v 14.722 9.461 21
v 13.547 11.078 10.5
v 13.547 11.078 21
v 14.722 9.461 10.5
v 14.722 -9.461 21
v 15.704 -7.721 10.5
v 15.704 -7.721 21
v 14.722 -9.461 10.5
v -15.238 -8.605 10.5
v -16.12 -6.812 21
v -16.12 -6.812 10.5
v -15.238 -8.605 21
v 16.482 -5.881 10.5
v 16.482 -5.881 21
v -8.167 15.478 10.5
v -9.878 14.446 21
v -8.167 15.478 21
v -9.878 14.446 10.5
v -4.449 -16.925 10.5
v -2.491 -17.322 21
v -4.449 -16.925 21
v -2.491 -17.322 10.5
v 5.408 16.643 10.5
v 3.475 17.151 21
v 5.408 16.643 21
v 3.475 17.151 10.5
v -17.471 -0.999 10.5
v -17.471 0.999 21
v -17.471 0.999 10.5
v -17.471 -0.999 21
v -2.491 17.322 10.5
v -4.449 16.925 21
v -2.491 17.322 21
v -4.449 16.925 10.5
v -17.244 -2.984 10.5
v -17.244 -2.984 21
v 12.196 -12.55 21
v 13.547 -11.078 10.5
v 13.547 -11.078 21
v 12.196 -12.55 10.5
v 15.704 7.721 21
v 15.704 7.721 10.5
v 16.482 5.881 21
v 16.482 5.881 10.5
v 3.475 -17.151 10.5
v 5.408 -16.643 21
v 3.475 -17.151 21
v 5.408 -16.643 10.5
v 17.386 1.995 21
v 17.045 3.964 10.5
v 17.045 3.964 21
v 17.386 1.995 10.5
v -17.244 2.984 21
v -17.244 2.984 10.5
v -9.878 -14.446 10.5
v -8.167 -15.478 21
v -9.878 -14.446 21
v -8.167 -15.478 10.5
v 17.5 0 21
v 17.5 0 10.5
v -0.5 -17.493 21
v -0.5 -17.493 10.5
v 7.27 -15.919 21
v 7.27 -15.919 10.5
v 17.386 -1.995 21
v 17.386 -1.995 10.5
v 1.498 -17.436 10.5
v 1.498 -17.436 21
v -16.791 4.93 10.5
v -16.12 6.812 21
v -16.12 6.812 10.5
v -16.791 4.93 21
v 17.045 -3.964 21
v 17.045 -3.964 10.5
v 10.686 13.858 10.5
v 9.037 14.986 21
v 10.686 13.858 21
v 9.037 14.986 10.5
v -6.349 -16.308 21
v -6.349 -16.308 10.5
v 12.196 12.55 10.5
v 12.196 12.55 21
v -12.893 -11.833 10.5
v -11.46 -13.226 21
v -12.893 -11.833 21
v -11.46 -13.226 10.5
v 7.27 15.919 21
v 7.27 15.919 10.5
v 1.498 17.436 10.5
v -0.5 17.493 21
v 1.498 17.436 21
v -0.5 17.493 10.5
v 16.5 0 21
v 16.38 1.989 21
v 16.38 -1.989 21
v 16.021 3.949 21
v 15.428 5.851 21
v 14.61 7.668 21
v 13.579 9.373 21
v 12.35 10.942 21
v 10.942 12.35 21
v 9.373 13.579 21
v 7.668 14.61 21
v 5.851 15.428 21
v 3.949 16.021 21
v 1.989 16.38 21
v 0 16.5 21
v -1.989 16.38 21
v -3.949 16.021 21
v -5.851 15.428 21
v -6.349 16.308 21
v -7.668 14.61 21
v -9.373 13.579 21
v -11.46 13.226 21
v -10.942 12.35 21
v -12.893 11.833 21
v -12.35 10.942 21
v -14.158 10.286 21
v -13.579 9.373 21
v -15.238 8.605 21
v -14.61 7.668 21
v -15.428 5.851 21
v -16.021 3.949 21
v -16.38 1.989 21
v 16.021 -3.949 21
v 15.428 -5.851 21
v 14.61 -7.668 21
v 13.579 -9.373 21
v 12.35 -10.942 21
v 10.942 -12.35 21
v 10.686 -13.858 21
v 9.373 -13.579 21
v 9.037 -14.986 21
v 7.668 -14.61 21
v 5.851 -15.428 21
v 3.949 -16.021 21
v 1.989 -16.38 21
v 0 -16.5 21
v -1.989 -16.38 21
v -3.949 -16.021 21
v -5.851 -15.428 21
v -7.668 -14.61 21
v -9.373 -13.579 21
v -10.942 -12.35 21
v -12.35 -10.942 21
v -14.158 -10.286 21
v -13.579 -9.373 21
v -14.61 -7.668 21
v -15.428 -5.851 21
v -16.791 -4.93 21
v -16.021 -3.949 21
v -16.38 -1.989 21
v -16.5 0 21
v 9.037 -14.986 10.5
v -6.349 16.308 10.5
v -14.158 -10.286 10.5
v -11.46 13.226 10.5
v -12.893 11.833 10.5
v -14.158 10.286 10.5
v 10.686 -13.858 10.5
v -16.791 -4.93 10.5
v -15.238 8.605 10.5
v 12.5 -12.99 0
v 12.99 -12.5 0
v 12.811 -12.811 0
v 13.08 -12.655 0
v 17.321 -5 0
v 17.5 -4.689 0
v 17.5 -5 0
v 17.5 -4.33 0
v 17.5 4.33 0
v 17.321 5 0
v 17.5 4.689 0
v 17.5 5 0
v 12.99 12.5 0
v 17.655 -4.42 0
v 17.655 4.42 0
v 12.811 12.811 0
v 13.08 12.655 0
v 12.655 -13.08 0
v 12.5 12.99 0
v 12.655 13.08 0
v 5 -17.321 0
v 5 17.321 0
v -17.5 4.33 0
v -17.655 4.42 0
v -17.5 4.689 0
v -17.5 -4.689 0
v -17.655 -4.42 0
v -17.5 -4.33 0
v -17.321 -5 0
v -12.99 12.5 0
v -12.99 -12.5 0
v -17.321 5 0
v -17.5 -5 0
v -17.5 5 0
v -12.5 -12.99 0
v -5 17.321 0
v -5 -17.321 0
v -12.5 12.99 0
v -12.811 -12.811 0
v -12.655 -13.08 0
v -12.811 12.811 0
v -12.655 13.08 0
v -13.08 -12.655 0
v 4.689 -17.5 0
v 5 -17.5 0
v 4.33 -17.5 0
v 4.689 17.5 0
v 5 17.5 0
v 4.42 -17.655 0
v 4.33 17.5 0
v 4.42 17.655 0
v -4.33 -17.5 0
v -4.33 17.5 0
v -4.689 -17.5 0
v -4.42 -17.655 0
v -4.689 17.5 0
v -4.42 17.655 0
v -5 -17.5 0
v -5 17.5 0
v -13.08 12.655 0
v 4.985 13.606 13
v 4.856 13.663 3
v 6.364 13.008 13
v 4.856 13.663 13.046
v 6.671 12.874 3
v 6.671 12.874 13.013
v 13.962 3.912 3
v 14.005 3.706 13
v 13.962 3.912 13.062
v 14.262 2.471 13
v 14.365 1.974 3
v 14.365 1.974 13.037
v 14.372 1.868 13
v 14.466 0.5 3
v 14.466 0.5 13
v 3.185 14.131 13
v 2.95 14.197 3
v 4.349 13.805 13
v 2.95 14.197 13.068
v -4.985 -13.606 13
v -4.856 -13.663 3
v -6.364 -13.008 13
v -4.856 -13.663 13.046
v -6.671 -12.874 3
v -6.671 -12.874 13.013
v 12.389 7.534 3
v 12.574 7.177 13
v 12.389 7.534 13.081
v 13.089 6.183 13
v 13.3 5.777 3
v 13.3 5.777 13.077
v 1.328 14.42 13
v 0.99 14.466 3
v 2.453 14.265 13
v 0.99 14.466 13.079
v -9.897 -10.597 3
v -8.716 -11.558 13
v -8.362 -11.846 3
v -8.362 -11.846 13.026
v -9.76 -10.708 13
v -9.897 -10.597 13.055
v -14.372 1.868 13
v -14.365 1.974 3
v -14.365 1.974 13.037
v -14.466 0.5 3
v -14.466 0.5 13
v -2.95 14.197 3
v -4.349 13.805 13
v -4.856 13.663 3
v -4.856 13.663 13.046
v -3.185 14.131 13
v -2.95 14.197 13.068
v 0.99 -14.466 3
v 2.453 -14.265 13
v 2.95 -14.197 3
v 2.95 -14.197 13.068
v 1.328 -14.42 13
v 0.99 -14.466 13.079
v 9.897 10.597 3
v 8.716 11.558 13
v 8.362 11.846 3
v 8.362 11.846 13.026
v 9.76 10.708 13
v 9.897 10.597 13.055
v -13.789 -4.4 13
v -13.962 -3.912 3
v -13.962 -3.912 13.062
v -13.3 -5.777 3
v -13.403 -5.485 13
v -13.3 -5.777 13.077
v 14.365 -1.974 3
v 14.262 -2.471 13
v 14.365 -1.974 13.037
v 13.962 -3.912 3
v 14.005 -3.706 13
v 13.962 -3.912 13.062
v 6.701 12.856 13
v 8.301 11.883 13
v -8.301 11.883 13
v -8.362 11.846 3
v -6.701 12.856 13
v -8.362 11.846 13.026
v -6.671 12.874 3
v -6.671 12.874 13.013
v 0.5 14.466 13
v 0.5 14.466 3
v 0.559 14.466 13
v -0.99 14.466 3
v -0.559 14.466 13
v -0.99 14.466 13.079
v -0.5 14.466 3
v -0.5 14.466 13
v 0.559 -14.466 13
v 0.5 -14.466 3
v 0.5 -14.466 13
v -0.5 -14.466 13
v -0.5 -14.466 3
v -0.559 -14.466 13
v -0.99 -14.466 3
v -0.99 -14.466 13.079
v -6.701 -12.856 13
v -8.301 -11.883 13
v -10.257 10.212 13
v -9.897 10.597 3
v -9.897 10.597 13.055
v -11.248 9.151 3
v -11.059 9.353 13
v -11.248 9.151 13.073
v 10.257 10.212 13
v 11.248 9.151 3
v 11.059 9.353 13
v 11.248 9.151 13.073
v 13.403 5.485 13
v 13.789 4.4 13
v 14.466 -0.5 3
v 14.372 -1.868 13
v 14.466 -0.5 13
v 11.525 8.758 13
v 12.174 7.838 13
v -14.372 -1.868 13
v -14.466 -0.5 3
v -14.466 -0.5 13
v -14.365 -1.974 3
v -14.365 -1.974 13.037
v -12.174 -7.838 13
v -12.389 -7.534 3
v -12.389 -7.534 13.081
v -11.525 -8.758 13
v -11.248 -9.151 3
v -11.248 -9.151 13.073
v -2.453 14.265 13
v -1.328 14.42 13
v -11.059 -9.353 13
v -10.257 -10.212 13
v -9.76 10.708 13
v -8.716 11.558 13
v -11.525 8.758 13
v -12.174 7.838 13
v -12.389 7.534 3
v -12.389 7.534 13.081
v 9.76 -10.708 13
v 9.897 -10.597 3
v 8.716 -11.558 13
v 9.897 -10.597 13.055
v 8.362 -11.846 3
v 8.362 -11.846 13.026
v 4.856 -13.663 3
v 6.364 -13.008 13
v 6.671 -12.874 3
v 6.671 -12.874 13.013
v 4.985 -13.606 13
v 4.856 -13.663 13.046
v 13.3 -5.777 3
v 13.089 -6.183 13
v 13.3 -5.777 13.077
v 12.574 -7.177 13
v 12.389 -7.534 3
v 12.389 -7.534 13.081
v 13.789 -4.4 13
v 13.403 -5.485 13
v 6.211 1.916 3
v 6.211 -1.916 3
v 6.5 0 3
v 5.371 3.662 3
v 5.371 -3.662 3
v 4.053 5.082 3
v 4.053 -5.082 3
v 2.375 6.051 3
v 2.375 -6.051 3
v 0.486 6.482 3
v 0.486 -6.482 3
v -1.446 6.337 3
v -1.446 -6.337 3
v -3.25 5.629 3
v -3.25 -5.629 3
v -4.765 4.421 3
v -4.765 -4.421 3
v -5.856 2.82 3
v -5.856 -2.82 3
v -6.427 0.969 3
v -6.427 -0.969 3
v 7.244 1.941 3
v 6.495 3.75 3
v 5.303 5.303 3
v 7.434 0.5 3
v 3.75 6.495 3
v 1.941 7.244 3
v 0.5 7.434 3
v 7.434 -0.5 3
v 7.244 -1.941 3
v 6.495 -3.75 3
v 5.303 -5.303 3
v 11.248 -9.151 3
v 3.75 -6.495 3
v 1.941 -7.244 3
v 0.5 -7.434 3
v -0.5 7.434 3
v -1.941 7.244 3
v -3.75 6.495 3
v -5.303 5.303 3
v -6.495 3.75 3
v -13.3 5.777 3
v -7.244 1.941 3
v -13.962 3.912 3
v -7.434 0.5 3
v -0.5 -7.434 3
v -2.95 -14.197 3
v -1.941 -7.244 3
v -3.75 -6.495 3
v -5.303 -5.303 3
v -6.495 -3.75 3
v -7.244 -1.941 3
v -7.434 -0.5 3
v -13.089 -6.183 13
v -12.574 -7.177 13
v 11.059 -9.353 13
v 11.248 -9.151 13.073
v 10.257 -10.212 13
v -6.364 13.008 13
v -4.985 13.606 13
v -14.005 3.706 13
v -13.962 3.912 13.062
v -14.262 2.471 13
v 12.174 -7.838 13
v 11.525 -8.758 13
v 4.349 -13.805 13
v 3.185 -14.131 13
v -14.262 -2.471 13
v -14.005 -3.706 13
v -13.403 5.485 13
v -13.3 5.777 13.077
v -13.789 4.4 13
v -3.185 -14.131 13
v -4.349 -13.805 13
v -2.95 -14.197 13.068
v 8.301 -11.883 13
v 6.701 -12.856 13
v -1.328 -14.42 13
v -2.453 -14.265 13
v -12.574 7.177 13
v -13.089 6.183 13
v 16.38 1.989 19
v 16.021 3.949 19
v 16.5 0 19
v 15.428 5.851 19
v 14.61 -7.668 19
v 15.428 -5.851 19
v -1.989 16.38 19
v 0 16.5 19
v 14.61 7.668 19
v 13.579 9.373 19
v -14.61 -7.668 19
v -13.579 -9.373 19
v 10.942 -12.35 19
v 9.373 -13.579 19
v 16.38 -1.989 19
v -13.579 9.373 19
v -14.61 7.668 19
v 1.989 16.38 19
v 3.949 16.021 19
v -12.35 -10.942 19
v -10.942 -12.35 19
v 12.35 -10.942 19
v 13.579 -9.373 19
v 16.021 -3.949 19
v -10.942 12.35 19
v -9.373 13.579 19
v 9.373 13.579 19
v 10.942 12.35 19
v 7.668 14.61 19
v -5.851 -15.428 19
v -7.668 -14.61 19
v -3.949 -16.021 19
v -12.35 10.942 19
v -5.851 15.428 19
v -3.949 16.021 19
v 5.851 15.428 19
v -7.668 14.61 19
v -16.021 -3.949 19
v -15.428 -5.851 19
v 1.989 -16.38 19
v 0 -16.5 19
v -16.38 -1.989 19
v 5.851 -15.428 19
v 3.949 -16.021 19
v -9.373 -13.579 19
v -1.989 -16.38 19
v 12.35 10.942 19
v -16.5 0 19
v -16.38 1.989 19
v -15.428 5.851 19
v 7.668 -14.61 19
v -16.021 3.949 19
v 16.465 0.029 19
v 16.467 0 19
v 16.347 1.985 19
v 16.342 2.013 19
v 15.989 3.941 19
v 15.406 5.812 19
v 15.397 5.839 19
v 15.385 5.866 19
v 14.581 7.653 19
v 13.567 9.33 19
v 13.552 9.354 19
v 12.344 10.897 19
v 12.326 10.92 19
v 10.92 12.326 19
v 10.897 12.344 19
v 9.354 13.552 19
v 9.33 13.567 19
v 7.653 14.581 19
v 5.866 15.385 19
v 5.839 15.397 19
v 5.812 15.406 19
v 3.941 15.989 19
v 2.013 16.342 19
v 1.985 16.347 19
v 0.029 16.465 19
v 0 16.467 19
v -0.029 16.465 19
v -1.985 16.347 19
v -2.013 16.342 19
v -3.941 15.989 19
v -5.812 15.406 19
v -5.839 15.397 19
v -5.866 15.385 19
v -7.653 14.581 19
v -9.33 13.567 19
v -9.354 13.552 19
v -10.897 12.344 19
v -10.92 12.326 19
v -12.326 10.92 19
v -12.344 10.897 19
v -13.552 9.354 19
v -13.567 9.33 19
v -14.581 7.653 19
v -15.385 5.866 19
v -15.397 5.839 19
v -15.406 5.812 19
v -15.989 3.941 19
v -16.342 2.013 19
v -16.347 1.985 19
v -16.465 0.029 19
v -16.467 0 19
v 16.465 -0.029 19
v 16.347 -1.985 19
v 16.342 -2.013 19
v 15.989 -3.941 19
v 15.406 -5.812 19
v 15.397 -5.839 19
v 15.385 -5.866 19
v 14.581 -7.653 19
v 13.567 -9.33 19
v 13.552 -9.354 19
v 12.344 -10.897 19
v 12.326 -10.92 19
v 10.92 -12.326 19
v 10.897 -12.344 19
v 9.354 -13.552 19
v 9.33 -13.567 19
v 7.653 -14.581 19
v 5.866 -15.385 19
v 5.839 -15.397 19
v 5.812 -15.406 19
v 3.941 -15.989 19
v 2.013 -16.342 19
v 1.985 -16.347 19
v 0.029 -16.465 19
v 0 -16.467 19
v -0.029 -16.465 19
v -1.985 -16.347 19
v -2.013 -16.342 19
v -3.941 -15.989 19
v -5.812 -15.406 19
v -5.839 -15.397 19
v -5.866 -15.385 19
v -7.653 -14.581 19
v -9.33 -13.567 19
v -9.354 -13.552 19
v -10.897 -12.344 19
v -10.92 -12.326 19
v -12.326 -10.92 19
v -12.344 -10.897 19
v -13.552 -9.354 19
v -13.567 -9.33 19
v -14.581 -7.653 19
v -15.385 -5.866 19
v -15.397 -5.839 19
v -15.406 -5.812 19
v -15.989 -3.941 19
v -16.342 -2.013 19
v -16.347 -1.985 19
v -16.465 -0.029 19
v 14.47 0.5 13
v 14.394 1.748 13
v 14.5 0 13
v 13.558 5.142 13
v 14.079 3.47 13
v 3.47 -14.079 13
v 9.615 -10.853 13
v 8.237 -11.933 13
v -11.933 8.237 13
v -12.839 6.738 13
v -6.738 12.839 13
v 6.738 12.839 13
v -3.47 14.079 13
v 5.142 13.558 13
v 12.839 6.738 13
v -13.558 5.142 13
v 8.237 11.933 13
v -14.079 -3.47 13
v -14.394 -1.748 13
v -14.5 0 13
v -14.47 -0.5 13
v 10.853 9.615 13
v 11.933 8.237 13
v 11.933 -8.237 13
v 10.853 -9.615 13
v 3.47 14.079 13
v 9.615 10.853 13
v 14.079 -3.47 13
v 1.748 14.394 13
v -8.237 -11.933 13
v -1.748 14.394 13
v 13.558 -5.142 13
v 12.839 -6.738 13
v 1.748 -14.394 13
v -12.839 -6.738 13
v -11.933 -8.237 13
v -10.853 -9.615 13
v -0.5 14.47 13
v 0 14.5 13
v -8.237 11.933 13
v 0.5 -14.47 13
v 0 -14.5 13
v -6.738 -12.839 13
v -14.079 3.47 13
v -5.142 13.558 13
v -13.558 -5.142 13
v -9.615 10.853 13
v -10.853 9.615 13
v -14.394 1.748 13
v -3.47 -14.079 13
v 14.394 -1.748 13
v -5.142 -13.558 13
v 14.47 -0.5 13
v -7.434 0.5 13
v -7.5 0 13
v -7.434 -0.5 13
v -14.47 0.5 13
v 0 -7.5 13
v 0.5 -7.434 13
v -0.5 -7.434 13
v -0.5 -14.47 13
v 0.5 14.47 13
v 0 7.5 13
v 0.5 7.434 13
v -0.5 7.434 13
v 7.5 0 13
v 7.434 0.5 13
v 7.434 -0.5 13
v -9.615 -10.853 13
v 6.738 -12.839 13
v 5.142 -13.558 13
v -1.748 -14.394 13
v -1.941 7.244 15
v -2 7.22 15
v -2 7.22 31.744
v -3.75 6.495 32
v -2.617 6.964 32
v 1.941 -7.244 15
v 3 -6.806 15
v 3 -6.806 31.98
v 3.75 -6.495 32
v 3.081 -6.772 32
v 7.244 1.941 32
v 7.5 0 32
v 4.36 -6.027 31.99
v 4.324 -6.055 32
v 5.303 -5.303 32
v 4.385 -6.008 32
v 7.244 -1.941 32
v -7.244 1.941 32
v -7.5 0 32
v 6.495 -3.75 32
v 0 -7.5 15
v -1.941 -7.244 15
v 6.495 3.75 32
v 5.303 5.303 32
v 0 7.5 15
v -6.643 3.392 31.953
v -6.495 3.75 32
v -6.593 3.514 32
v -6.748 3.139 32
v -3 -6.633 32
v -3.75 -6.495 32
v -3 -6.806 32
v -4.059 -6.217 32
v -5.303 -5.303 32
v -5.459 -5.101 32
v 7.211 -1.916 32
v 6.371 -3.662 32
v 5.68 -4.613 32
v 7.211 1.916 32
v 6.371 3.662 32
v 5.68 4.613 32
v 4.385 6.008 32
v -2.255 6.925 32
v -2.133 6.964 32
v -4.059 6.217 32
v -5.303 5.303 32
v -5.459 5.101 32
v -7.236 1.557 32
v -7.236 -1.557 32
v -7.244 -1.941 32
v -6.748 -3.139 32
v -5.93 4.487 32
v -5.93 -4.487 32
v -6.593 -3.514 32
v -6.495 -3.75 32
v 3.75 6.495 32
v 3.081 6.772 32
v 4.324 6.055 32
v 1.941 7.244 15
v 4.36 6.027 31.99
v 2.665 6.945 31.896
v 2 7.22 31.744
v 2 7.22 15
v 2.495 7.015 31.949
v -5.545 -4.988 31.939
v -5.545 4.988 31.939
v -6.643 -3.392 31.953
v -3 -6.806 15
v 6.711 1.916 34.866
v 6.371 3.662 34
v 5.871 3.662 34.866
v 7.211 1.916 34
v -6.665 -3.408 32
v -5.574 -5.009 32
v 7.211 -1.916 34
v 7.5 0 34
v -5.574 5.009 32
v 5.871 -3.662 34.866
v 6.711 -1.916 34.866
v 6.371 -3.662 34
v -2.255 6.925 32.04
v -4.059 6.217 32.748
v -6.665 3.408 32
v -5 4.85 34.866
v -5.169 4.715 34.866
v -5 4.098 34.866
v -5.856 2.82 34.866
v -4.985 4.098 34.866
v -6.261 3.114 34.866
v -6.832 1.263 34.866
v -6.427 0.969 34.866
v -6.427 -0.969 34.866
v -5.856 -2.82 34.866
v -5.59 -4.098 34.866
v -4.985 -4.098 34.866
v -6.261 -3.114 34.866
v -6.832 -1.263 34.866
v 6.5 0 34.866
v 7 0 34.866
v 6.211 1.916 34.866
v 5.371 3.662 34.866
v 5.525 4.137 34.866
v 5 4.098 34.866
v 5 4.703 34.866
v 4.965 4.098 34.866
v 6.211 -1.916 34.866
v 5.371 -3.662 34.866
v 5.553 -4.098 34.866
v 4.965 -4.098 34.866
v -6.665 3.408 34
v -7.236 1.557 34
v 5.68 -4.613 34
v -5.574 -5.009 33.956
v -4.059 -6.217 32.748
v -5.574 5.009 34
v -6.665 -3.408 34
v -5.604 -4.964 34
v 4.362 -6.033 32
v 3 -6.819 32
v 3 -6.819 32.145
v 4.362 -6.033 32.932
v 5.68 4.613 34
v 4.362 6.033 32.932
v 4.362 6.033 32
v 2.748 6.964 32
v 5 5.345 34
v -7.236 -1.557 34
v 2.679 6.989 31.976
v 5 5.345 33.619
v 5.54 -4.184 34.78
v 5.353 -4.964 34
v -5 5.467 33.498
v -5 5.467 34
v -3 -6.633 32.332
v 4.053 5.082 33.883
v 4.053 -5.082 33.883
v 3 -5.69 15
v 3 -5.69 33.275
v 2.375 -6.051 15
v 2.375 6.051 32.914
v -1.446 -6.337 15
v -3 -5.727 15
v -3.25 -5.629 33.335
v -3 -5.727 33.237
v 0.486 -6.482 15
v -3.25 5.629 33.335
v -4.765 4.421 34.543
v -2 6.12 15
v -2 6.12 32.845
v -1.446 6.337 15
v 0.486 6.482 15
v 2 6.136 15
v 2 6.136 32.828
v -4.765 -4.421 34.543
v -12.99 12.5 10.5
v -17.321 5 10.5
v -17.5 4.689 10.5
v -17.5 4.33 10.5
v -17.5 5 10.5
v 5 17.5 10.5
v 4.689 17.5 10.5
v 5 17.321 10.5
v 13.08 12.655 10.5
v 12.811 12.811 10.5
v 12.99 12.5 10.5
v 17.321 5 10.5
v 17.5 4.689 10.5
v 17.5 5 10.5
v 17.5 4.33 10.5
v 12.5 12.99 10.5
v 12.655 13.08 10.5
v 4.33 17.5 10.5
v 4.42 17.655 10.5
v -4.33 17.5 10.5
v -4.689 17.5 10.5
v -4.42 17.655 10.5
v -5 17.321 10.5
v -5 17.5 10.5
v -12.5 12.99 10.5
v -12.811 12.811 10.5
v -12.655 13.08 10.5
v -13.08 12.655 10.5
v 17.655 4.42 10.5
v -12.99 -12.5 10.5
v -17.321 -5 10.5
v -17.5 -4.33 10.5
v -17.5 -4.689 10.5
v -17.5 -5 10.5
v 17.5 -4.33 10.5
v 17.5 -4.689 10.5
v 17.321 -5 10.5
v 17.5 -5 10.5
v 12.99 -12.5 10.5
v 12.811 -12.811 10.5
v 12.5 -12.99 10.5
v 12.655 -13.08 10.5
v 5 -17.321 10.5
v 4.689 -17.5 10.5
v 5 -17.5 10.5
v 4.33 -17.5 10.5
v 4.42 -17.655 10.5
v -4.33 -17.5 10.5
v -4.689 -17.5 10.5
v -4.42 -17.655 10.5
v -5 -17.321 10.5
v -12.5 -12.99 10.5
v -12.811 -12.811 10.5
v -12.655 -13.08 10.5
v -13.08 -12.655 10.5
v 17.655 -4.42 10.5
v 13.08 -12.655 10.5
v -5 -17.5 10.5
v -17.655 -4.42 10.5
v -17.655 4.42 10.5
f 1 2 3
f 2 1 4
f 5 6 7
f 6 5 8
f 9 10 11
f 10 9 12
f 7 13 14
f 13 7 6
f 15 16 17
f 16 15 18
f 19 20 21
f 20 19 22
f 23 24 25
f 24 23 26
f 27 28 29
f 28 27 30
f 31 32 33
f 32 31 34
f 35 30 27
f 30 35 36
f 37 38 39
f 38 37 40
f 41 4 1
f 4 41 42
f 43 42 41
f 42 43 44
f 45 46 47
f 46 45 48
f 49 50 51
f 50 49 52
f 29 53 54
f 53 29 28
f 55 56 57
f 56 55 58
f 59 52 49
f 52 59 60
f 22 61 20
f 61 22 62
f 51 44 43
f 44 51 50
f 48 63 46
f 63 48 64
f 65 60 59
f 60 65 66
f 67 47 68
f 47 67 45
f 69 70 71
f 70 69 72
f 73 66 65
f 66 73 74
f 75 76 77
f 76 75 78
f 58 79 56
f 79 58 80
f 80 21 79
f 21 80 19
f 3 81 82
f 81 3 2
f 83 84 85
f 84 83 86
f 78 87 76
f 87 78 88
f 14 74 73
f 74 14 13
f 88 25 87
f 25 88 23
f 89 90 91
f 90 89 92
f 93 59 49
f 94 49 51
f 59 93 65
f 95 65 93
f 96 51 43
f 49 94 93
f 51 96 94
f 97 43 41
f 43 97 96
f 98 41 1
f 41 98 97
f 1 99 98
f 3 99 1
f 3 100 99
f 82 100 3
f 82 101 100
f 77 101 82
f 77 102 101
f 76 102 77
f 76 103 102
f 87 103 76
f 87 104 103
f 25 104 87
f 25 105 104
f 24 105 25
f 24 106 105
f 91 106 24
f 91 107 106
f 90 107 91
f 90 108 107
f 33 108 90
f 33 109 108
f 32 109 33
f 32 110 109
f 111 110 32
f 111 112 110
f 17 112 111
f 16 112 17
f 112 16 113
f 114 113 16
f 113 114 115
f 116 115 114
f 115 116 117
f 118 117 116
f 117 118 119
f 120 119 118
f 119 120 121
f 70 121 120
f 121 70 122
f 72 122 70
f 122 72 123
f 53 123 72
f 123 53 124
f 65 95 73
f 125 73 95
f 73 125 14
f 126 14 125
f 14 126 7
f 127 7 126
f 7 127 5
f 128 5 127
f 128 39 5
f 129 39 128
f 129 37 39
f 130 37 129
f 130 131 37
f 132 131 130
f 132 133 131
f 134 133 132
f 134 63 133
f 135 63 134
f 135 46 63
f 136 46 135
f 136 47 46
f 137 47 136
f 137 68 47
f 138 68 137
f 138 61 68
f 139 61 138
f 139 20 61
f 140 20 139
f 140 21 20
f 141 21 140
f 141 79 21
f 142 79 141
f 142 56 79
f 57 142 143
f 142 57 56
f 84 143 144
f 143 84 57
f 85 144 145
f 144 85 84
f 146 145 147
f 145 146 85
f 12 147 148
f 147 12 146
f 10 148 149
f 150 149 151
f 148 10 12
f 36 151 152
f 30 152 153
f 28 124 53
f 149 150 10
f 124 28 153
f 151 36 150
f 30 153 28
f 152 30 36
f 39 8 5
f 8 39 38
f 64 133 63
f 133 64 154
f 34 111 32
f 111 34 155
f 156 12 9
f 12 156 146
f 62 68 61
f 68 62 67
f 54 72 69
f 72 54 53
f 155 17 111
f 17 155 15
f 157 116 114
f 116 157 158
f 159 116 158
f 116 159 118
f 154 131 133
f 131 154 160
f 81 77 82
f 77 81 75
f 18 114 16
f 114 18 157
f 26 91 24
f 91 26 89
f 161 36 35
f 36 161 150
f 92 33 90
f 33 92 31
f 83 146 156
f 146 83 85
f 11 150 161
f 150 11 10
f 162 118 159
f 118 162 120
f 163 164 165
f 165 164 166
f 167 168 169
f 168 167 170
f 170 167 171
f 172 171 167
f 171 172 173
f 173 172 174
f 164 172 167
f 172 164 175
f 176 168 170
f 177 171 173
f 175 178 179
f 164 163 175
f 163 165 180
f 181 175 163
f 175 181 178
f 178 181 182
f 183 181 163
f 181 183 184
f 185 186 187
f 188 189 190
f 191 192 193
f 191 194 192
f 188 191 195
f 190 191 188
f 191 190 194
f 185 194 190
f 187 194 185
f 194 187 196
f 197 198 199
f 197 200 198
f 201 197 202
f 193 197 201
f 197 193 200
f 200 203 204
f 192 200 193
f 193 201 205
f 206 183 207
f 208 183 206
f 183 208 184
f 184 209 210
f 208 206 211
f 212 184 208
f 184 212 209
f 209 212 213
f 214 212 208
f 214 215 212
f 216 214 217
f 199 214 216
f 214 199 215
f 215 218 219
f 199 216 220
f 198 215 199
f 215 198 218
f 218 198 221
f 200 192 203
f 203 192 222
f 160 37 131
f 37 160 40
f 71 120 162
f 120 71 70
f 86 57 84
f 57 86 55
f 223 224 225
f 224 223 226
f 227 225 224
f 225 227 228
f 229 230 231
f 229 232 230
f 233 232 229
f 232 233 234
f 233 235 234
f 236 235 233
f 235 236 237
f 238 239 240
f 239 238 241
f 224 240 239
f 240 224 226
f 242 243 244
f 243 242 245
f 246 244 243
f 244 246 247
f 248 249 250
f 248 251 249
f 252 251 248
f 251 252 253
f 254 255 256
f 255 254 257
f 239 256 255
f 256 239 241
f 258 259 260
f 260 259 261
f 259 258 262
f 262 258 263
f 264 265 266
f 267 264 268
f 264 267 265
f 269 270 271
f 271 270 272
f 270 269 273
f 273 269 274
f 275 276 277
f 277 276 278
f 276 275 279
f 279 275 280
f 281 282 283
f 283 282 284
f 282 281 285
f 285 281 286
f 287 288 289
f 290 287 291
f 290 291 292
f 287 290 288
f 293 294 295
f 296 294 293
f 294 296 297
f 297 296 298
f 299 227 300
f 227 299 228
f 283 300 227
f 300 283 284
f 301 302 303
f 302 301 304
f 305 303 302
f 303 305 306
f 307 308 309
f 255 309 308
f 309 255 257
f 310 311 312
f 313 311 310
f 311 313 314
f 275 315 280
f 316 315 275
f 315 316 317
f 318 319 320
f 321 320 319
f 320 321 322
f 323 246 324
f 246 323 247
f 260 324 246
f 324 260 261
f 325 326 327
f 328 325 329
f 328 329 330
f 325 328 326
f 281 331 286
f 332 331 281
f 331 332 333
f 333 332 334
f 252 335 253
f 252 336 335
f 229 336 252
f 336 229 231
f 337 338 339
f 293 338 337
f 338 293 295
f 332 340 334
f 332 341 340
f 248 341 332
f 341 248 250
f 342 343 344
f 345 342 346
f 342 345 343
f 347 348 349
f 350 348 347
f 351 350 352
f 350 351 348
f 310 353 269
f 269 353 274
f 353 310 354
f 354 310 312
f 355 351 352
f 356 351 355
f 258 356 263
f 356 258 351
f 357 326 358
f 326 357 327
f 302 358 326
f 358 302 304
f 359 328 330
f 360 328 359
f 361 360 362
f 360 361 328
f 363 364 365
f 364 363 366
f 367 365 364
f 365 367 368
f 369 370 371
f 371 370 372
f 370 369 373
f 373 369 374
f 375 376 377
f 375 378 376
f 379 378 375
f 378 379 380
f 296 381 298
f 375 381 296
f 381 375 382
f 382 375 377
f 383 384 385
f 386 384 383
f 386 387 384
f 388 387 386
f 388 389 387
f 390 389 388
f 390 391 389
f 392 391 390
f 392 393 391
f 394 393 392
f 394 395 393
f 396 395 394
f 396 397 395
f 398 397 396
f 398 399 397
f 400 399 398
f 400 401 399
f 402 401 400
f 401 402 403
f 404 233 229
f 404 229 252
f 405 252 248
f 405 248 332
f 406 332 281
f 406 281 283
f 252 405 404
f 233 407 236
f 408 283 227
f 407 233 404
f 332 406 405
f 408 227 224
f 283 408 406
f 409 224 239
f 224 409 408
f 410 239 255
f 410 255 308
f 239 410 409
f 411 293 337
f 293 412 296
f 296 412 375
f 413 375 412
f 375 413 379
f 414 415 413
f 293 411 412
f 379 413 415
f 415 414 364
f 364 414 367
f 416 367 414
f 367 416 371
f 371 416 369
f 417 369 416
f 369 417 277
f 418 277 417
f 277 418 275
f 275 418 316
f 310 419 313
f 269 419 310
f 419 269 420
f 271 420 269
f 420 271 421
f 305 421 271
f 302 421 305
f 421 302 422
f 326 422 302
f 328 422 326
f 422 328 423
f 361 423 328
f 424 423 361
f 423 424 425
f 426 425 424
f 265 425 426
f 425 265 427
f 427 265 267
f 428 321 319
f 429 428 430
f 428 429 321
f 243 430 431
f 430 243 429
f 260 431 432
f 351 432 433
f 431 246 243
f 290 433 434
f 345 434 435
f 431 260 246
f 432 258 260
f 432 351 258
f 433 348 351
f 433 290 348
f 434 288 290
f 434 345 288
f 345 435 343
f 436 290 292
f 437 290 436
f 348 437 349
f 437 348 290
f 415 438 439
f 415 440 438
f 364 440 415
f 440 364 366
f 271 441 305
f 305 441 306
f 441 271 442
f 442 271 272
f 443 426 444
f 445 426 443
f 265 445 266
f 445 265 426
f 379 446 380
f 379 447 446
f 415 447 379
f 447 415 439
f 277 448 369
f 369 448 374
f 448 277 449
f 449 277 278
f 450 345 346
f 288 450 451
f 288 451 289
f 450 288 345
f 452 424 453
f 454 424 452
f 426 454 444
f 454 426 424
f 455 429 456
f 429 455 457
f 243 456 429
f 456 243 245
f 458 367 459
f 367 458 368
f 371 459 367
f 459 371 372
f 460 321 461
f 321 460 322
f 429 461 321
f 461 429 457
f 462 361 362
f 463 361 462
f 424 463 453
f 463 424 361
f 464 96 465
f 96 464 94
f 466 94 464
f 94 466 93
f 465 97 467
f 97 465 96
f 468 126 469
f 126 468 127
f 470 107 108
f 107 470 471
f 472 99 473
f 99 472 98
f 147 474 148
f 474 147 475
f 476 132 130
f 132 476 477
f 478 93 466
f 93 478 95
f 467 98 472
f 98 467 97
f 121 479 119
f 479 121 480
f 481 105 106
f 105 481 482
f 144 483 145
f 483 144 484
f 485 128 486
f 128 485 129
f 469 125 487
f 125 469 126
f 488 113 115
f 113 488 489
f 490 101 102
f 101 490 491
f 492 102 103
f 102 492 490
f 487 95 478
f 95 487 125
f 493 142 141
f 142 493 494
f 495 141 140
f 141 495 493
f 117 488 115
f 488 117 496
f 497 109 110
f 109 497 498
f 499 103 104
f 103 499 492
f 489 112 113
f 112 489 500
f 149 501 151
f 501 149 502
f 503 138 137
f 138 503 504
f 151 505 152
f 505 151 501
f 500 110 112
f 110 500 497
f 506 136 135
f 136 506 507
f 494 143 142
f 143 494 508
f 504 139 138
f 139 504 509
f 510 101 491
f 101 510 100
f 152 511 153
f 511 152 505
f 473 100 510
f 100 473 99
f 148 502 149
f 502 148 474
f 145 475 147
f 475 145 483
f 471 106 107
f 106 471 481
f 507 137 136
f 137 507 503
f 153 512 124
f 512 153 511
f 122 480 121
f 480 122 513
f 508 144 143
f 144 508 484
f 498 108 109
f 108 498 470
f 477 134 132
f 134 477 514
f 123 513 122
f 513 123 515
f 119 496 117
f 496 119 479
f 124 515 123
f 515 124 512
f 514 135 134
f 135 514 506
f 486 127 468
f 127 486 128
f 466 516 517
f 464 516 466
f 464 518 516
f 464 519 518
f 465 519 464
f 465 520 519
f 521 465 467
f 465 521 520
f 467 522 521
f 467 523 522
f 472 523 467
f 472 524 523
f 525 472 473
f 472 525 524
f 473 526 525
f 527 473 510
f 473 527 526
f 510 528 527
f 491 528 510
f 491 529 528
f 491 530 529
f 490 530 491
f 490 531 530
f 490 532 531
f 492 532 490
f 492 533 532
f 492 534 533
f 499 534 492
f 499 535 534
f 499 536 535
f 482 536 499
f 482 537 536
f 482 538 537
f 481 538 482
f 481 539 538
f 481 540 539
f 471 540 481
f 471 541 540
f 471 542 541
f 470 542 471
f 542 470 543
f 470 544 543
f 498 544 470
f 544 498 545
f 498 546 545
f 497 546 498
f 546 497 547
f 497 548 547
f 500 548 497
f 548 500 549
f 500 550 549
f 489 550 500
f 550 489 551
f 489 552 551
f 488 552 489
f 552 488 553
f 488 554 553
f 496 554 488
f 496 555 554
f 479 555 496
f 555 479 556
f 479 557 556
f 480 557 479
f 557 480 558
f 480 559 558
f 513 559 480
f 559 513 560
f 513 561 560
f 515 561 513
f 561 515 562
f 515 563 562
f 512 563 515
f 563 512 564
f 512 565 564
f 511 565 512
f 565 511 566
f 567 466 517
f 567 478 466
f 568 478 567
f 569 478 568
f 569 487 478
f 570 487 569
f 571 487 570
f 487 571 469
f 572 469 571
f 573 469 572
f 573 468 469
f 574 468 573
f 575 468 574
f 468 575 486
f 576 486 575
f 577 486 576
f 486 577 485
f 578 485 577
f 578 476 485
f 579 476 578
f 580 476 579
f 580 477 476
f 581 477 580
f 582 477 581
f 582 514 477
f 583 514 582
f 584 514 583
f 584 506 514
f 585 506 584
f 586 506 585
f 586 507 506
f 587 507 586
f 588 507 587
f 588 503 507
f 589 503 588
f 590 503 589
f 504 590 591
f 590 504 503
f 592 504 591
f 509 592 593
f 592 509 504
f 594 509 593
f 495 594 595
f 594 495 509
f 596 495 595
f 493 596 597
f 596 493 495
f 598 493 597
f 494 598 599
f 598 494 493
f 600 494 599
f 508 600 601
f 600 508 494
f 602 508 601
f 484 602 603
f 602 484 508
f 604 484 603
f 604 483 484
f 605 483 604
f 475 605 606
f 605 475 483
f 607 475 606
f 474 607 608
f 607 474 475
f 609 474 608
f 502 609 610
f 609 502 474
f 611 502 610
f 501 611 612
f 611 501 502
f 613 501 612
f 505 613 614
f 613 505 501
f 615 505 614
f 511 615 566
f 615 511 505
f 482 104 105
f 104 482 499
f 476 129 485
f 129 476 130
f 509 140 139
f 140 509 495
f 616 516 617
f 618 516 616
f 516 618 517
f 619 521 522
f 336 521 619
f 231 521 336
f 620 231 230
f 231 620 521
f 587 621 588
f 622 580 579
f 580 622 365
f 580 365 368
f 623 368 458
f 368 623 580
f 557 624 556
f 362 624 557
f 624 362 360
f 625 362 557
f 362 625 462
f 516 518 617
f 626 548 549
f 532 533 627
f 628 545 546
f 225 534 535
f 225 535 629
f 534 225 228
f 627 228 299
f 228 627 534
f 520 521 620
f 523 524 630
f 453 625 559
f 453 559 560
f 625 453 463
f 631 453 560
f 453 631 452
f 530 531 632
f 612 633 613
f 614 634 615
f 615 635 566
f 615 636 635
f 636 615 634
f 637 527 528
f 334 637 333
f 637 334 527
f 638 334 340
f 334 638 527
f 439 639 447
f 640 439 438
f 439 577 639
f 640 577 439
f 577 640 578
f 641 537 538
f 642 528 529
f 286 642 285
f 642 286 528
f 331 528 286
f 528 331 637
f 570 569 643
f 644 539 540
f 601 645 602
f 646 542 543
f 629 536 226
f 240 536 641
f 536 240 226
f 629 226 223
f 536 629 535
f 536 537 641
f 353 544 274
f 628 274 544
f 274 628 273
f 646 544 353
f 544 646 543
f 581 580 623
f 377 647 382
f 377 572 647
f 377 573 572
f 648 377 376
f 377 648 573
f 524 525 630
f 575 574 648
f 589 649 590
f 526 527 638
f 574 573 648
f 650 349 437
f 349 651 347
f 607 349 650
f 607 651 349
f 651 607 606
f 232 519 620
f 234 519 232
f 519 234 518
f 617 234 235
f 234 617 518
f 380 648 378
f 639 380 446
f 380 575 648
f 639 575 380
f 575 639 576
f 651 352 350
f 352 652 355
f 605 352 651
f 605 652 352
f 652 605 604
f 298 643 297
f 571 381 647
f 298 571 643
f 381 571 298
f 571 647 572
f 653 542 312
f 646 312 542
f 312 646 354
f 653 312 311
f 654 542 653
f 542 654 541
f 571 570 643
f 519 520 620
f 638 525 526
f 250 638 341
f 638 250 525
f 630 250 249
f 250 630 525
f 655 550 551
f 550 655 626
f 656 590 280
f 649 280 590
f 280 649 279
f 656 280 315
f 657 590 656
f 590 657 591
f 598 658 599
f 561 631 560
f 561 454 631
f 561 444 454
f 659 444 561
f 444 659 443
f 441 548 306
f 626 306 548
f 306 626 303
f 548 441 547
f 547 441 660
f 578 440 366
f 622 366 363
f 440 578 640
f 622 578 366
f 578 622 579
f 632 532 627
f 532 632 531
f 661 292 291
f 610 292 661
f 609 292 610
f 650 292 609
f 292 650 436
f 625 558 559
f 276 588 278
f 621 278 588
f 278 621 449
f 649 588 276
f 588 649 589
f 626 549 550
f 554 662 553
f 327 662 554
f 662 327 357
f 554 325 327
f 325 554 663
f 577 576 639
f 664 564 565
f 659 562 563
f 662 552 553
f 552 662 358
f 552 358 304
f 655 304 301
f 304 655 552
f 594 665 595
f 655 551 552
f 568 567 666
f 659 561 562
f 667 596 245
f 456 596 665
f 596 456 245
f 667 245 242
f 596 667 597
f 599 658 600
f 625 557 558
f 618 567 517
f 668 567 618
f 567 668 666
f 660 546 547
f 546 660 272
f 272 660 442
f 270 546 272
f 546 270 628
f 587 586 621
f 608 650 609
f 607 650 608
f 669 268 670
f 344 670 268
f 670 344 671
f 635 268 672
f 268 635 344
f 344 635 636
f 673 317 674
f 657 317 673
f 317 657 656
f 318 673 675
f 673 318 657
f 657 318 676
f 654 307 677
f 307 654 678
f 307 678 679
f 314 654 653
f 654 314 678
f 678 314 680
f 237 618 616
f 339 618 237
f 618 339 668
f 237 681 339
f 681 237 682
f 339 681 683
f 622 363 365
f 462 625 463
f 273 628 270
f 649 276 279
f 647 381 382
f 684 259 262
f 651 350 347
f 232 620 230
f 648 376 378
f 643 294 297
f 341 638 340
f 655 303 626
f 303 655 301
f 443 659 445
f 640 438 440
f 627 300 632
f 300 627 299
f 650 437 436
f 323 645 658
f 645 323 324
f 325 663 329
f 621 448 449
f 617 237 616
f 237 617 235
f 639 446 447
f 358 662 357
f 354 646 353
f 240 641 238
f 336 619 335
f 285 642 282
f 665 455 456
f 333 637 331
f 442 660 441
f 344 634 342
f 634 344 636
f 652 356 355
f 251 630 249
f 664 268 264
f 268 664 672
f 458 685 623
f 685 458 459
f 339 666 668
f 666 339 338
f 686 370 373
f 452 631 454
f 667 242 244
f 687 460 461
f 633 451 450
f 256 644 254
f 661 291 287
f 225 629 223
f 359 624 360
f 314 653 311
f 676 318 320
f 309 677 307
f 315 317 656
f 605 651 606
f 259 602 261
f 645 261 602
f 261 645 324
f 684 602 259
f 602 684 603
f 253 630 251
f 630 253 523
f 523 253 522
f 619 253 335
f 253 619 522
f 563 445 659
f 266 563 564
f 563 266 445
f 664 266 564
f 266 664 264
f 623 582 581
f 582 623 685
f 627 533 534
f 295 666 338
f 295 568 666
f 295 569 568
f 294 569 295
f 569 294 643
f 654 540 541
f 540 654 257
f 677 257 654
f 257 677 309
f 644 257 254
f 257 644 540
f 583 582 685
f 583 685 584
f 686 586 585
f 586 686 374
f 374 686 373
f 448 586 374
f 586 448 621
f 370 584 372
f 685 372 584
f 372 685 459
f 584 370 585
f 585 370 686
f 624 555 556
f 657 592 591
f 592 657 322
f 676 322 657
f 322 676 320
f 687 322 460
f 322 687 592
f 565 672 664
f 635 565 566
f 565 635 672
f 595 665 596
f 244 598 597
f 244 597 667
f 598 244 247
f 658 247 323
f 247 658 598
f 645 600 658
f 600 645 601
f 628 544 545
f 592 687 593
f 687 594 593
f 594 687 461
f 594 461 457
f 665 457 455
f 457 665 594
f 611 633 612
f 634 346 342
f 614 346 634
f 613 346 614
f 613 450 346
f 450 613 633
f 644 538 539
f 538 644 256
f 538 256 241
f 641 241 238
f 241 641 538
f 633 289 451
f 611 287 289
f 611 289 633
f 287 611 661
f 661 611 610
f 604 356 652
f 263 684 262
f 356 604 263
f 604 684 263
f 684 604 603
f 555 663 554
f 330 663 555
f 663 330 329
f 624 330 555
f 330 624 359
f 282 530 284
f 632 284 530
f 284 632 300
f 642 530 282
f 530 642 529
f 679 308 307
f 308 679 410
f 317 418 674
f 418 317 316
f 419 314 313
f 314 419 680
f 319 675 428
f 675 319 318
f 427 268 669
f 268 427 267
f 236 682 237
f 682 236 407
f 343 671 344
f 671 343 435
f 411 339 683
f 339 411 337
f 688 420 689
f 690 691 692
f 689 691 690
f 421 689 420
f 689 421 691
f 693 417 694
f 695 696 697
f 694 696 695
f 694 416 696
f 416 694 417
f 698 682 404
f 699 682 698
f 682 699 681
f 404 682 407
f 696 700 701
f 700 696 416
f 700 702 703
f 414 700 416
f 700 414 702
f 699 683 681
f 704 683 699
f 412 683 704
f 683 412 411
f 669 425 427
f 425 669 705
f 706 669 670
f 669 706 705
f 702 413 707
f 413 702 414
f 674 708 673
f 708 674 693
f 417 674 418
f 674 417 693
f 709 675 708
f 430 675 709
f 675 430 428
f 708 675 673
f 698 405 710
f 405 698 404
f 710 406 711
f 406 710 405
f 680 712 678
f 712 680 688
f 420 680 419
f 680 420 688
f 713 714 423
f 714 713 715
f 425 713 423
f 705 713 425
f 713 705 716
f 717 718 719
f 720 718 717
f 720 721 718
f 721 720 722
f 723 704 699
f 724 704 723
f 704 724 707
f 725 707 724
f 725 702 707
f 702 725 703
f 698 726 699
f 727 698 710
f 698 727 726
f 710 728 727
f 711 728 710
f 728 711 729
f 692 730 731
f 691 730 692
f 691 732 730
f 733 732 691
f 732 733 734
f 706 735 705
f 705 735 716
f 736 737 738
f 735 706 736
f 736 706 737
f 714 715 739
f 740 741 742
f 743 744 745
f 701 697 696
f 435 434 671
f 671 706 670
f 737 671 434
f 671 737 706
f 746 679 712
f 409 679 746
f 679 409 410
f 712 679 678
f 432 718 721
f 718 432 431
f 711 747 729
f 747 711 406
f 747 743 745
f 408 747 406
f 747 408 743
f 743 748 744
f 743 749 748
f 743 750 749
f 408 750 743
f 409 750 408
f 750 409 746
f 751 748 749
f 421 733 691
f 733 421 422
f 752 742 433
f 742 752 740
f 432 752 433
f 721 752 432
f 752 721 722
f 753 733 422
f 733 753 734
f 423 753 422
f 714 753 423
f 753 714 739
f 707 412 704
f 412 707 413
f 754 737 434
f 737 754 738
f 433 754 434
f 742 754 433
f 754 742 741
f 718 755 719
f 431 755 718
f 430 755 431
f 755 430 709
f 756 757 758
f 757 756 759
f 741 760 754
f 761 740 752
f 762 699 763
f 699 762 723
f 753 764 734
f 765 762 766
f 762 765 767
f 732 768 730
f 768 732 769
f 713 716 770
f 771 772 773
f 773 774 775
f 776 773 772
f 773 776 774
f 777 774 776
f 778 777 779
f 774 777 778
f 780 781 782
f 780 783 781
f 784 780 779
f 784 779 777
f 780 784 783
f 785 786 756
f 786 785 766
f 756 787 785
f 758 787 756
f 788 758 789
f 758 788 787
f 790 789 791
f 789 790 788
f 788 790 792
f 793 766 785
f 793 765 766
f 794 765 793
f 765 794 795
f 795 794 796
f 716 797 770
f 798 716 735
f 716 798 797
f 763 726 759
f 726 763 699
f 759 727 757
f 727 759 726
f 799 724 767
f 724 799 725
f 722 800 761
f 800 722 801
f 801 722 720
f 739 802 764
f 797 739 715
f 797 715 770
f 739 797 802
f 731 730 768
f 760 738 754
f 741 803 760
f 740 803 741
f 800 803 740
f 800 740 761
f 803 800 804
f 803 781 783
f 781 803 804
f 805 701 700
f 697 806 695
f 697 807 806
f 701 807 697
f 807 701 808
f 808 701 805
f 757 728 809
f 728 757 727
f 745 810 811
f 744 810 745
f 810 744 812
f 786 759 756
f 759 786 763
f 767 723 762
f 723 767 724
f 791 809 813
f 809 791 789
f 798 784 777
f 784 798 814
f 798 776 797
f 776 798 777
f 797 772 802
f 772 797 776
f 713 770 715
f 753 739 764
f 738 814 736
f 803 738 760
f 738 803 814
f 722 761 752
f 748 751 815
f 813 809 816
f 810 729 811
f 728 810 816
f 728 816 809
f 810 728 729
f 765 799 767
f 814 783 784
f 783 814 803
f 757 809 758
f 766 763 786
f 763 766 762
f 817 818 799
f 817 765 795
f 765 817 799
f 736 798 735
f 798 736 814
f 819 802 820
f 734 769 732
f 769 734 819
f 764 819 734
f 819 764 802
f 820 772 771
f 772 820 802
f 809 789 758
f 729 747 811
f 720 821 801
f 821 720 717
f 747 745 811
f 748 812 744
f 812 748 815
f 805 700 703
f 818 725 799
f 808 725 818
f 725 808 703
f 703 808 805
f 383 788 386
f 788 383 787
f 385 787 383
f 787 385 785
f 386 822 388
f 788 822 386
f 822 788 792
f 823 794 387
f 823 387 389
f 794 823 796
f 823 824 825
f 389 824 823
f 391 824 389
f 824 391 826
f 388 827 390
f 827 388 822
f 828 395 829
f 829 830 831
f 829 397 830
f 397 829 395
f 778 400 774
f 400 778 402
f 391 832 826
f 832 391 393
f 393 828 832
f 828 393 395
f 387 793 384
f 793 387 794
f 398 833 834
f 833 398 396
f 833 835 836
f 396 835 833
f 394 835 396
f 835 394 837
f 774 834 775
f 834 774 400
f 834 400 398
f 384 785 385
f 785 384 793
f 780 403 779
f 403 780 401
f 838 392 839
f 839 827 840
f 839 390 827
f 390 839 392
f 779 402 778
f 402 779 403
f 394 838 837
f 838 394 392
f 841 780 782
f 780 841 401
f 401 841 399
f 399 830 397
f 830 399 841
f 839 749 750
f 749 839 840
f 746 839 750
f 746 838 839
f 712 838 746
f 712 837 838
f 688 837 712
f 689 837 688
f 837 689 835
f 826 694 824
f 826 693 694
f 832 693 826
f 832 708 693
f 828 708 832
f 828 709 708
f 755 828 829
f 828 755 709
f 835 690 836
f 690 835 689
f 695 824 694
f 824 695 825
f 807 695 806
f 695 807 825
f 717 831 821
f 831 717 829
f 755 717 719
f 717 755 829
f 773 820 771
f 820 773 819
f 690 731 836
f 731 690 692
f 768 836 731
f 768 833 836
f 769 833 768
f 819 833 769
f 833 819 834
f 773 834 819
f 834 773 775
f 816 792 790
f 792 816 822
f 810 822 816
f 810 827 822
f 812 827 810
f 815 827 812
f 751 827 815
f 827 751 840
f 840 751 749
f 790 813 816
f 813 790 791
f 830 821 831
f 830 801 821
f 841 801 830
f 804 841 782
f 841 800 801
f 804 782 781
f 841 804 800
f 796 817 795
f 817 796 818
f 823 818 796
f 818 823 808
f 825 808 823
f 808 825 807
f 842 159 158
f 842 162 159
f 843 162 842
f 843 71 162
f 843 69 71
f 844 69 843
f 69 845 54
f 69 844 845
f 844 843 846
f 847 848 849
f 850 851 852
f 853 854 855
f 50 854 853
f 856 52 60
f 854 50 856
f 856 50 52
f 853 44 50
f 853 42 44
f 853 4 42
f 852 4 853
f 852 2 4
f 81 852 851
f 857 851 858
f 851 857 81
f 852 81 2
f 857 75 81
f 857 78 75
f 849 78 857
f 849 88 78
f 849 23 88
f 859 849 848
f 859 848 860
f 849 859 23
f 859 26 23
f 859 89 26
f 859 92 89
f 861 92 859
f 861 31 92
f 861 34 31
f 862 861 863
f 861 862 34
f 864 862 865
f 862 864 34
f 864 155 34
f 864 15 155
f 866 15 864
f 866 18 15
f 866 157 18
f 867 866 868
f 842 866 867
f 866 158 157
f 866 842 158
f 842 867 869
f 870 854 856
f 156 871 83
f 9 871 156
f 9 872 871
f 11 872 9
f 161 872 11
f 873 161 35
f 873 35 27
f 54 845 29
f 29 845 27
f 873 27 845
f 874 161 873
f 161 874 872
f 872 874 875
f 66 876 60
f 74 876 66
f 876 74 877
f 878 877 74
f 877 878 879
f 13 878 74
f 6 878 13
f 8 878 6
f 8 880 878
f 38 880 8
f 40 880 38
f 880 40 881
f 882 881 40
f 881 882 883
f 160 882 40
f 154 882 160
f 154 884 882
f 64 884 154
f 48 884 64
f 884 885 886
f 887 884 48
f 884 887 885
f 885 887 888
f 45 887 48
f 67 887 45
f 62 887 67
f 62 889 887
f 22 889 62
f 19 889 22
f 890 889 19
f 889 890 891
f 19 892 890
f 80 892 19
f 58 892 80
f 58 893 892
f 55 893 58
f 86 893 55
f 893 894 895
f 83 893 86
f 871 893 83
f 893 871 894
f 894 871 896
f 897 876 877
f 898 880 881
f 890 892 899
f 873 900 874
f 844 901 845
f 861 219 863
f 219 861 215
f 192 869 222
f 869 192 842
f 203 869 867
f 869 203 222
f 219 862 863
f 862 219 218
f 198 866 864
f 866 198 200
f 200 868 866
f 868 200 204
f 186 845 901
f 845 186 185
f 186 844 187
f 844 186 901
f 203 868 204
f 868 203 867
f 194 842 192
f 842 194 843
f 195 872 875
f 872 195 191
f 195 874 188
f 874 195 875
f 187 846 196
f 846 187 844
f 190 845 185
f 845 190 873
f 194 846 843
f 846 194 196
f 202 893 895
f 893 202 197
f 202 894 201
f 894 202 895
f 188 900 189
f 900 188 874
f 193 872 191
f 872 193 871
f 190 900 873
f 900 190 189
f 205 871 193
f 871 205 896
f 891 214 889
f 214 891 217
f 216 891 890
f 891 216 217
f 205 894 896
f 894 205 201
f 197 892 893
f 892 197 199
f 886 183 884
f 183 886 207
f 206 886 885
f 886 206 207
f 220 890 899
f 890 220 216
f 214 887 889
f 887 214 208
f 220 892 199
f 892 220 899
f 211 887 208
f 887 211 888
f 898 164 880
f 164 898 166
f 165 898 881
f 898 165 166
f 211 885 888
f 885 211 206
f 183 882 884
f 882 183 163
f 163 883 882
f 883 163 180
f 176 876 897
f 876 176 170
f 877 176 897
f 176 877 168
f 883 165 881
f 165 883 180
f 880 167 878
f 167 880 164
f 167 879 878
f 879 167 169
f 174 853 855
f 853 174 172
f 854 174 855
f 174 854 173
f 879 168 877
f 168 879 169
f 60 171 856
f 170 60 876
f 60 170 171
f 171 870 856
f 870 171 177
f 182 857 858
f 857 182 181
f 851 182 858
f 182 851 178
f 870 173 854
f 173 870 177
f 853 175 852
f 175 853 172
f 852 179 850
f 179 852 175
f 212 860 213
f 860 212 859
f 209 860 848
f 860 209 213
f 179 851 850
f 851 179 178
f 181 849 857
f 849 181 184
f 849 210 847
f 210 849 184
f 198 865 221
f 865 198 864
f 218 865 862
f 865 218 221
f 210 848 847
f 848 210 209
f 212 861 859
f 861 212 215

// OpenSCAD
$fa = 0.1;
knob_dia = 35;
knob_height = 21;
knob_thickness = 3;
knob_faces = 12;
knob_face_height = knob_height / 2;
knob_face_width = 10;
knob_face_depth = 1;

inner_dia = 15;
inner_solid_height = 15;
inner_spike_height = 35;
inner_thickness = 1;

inner_wall_thickness = 1;
inner_wall_height = 13;

slot_1_thickness = 4;
slot_2_thickness = 6;


// Knob 
difference(){
    cylinder(h=knob_height, r=knob_dia/2);
    translate([0,0, knob_thickness]){
        cylinder(h=knob_height, 
                r=knob_dia/2 - knob_thickness);
    }
    translate([0,0, knob_height-2]){
        cylinder(h=3, 
                r=knob_dia/2 - inner_thickness);
    }
    translate([0,0, inner_wall_height]){
        cylinder(h=(knob_height-inner_wall_height-1.9), 
                r1=knob_dia/2 - knob_thickness,
                r2=knob_dia/2 - inner_thickness);
    }
    translate([0,0, knob_thickness]){
        cylinder(h=knob_height, 
                r=knob_dia/2 - knob_thickness);
    }
}

// Interior
difference(){
    union(){
    cylinder(h=inner_spike_height-3, r=inner_dia/2);
    translate([0,0,inner_spike_height-3]){
            minkowski(){
            cylinder(h=2, r=inner_dia/2-1);
            sphere(1);
            }
    }
    translate([0,0, inner_wall_height/2]){
        cube([  inner_wall_thickness, 
                knob_dia-knob_thickness, 
                inner_wall_height], 
                true);
        cube([  knob_dia-knob_thickness, 
                inner_wall_thickness,
                inner_wall_height], 
                true);
            }
    }
    translate([0,0, knob_thickness]){
        cylinder(h=inner_spike_height, 
                r=inner_dia/2 - inner_thickness);
    }
    translate([0,0, inner_spike_height/2 + inner_solid_height]){
        cube([slot_1_thickness,inner_dia,inner_spike_height], true);
    }
    translate([0,-5, inner_spike_height/2 + inner_solid_height]){
        cube([slot_2_thickness,inner_dia,inner_spike_height], true);
    }
    translate([0,inner_dia/2,inner_spike_height]){
        rotate(a=45, v=[1,0,0]){
            cube([10,5,10], center = true);
            }
        }
    translate([0,-inner_dia/2,inner_spike_height]){
        rotate(a=-45, v=[1,0,0]){
            cube([20,5,10], center = true);
            }
        }

}



// Faces
for(I = [1:1:knob_faces]){
    rotate(a=360/knob_faces*I, v=[0,0,1]){
        translate([-knob_face_width/2, 
                    knob_dia/2-knob_face_depth,
                    0]){
        cube([  knob_face_width, 
                knob_face_depth,
                knob_face_height],
                false);   
        }
    }
}
